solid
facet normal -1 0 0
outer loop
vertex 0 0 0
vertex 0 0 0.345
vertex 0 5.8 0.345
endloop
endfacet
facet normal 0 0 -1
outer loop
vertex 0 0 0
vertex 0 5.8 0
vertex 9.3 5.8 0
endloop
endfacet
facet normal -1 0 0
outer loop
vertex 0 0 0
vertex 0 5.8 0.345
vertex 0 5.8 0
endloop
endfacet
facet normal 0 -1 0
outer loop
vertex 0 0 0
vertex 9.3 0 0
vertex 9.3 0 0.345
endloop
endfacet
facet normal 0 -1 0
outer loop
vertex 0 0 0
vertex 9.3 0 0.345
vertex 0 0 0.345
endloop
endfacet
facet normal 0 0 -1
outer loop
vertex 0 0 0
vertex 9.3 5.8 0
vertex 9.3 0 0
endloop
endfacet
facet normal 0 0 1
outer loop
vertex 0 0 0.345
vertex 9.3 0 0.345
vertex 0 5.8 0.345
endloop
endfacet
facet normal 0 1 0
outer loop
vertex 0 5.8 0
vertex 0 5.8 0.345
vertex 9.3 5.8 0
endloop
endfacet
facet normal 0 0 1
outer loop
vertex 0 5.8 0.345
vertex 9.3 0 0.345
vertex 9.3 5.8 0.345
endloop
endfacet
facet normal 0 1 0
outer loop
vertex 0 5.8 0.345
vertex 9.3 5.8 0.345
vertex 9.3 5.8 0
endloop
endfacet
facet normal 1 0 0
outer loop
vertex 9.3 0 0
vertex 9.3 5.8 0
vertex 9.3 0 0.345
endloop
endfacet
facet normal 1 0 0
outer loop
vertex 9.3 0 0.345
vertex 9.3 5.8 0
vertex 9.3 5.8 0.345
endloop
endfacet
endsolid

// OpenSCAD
/* Warning, this is a very basic generator with a lot of approximation 
input data : [WLCSP, NRC, 9.3x5.8x0.345mm, , , A, C04-25484A]
generated by com.zoubworld.electronics.cad.model3d.Basic
Date : Sun Feb 15 10:50:49 CET 2026
*/

//body
color("black")
translate([0,0,0])
cube([9.3,5.8,0.345], center=false);
